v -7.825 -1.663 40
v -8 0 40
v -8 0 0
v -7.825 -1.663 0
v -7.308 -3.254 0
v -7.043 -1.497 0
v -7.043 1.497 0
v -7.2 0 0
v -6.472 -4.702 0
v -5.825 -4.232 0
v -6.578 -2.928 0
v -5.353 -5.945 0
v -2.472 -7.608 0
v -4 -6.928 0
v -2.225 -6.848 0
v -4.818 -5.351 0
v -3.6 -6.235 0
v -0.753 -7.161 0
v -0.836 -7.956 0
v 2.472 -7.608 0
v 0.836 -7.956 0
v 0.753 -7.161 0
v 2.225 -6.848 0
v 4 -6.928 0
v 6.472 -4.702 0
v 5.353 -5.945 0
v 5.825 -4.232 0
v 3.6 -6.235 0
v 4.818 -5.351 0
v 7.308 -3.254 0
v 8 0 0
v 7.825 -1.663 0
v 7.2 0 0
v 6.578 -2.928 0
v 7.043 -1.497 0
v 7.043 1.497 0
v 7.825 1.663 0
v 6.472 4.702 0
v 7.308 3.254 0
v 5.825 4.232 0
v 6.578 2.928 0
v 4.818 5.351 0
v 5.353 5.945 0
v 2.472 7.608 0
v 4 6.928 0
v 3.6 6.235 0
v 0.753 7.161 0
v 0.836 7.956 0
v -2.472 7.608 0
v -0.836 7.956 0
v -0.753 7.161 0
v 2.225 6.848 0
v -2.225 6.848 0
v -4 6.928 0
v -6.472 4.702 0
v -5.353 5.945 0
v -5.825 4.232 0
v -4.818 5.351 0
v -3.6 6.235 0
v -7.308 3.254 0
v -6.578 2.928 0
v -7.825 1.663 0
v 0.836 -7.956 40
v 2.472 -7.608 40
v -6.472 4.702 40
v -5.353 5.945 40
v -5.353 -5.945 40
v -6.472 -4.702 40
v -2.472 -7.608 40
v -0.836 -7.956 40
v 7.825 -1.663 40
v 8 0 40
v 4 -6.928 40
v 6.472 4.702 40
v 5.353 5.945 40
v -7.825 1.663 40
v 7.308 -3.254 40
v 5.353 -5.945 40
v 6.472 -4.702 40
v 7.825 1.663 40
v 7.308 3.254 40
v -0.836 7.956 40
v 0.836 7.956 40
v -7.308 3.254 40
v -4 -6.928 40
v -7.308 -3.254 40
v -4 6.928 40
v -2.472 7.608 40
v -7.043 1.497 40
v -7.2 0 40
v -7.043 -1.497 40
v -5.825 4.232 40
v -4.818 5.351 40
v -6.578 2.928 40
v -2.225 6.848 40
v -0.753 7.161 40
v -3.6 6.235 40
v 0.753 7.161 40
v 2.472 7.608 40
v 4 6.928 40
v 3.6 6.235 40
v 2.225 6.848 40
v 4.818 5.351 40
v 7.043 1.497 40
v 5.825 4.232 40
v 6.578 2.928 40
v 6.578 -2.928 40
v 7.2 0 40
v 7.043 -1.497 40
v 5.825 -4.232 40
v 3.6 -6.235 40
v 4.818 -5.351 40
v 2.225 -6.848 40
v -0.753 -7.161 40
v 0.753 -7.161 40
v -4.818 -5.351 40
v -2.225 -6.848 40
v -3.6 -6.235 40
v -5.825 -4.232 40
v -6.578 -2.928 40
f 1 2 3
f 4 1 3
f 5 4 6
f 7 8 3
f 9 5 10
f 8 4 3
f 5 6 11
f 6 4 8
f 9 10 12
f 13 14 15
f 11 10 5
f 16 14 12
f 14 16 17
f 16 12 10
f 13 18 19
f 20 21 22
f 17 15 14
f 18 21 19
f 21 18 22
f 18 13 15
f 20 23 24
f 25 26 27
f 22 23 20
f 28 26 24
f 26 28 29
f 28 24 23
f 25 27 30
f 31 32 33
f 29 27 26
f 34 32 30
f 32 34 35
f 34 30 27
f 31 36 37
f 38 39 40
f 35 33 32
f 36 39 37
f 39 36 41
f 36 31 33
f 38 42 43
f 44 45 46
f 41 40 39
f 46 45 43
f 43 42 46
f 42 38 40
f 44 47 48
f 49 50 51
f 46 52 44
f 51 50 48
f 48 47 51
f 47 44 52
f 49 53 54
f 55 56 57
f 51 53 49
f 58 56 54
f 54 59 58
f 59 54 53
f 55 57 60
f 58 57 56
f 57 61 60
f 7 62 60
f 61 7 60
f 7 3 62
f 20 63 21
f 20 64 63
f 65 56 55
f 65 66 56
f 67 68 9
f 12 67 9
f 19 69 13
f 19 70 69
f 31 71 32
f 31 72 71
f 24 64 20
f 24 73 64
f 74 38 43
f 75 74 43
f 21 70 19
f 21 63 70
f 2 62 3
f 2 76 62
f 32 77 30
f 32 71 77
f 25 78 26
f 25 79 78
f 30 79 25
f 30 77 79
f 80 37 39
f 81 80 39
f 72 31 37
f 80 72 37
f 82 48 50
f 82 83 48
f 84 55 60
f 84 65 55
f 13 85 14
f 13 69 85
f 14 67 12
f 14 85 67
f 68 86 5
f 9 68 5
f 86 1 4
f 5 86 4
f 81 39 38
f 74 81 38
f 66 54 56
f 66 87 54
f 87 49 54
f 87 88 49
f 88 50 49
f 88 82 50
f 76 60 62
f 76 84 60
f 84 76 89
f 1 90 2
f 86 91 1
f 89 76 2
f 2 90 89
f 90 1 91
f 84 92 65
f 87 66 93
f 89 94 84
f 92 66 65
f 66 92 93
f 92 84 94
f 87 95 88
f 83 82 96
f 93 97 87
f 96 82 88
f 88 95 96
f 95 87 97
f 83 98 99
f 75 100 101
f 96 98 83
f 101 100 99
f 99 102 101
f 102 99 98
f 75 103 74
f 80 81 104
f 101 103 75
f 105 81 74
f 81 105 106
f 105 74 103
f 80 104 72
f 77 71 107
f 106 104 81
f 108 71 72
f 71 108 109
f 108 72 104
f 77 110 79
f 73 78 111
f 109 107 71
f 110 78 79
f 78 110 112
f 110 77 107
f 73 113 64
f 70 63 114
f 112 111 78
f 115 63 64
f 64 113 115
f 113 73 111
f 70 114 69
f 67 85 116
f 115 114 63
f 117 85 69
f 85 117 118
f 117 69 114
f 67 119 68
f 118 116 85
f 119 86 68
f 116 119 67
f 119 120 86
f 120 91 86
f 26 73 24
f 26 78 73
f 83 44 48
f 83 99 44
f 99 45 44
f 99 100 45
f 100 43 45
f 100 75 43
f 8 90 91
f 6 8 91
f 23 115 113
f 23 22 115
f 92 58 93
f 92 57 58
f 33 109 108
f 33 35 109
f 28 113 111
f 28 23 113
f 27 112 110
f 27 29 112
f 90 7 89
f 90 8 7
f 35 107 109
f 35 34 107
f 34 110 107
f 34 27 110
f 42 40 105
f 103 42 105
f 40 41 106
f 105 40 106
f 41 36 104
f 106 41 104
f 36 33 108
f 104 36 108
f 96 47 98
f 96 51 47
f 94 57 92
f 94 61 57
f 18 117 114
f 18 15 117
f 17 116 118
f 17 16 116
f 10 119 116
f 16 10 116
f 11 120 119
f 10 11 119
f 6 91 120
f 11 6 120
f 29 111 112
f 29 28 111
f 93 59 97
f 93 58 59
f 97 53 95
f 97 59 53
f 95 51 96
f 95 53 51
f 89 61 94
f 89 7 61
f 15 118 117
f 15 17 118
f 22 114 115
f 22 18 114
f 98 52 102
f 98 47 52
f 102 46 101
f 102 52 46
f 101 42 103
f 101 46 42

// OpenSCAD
$fn=30;

inside_rad = 8;
thickness = .8;
length = 40;



difference()
{
    cylinder(r=inside_rad, h=length);
    translate([0,0,-1])cylinder(r=inside_rad-thickness, h=length+2);
}
